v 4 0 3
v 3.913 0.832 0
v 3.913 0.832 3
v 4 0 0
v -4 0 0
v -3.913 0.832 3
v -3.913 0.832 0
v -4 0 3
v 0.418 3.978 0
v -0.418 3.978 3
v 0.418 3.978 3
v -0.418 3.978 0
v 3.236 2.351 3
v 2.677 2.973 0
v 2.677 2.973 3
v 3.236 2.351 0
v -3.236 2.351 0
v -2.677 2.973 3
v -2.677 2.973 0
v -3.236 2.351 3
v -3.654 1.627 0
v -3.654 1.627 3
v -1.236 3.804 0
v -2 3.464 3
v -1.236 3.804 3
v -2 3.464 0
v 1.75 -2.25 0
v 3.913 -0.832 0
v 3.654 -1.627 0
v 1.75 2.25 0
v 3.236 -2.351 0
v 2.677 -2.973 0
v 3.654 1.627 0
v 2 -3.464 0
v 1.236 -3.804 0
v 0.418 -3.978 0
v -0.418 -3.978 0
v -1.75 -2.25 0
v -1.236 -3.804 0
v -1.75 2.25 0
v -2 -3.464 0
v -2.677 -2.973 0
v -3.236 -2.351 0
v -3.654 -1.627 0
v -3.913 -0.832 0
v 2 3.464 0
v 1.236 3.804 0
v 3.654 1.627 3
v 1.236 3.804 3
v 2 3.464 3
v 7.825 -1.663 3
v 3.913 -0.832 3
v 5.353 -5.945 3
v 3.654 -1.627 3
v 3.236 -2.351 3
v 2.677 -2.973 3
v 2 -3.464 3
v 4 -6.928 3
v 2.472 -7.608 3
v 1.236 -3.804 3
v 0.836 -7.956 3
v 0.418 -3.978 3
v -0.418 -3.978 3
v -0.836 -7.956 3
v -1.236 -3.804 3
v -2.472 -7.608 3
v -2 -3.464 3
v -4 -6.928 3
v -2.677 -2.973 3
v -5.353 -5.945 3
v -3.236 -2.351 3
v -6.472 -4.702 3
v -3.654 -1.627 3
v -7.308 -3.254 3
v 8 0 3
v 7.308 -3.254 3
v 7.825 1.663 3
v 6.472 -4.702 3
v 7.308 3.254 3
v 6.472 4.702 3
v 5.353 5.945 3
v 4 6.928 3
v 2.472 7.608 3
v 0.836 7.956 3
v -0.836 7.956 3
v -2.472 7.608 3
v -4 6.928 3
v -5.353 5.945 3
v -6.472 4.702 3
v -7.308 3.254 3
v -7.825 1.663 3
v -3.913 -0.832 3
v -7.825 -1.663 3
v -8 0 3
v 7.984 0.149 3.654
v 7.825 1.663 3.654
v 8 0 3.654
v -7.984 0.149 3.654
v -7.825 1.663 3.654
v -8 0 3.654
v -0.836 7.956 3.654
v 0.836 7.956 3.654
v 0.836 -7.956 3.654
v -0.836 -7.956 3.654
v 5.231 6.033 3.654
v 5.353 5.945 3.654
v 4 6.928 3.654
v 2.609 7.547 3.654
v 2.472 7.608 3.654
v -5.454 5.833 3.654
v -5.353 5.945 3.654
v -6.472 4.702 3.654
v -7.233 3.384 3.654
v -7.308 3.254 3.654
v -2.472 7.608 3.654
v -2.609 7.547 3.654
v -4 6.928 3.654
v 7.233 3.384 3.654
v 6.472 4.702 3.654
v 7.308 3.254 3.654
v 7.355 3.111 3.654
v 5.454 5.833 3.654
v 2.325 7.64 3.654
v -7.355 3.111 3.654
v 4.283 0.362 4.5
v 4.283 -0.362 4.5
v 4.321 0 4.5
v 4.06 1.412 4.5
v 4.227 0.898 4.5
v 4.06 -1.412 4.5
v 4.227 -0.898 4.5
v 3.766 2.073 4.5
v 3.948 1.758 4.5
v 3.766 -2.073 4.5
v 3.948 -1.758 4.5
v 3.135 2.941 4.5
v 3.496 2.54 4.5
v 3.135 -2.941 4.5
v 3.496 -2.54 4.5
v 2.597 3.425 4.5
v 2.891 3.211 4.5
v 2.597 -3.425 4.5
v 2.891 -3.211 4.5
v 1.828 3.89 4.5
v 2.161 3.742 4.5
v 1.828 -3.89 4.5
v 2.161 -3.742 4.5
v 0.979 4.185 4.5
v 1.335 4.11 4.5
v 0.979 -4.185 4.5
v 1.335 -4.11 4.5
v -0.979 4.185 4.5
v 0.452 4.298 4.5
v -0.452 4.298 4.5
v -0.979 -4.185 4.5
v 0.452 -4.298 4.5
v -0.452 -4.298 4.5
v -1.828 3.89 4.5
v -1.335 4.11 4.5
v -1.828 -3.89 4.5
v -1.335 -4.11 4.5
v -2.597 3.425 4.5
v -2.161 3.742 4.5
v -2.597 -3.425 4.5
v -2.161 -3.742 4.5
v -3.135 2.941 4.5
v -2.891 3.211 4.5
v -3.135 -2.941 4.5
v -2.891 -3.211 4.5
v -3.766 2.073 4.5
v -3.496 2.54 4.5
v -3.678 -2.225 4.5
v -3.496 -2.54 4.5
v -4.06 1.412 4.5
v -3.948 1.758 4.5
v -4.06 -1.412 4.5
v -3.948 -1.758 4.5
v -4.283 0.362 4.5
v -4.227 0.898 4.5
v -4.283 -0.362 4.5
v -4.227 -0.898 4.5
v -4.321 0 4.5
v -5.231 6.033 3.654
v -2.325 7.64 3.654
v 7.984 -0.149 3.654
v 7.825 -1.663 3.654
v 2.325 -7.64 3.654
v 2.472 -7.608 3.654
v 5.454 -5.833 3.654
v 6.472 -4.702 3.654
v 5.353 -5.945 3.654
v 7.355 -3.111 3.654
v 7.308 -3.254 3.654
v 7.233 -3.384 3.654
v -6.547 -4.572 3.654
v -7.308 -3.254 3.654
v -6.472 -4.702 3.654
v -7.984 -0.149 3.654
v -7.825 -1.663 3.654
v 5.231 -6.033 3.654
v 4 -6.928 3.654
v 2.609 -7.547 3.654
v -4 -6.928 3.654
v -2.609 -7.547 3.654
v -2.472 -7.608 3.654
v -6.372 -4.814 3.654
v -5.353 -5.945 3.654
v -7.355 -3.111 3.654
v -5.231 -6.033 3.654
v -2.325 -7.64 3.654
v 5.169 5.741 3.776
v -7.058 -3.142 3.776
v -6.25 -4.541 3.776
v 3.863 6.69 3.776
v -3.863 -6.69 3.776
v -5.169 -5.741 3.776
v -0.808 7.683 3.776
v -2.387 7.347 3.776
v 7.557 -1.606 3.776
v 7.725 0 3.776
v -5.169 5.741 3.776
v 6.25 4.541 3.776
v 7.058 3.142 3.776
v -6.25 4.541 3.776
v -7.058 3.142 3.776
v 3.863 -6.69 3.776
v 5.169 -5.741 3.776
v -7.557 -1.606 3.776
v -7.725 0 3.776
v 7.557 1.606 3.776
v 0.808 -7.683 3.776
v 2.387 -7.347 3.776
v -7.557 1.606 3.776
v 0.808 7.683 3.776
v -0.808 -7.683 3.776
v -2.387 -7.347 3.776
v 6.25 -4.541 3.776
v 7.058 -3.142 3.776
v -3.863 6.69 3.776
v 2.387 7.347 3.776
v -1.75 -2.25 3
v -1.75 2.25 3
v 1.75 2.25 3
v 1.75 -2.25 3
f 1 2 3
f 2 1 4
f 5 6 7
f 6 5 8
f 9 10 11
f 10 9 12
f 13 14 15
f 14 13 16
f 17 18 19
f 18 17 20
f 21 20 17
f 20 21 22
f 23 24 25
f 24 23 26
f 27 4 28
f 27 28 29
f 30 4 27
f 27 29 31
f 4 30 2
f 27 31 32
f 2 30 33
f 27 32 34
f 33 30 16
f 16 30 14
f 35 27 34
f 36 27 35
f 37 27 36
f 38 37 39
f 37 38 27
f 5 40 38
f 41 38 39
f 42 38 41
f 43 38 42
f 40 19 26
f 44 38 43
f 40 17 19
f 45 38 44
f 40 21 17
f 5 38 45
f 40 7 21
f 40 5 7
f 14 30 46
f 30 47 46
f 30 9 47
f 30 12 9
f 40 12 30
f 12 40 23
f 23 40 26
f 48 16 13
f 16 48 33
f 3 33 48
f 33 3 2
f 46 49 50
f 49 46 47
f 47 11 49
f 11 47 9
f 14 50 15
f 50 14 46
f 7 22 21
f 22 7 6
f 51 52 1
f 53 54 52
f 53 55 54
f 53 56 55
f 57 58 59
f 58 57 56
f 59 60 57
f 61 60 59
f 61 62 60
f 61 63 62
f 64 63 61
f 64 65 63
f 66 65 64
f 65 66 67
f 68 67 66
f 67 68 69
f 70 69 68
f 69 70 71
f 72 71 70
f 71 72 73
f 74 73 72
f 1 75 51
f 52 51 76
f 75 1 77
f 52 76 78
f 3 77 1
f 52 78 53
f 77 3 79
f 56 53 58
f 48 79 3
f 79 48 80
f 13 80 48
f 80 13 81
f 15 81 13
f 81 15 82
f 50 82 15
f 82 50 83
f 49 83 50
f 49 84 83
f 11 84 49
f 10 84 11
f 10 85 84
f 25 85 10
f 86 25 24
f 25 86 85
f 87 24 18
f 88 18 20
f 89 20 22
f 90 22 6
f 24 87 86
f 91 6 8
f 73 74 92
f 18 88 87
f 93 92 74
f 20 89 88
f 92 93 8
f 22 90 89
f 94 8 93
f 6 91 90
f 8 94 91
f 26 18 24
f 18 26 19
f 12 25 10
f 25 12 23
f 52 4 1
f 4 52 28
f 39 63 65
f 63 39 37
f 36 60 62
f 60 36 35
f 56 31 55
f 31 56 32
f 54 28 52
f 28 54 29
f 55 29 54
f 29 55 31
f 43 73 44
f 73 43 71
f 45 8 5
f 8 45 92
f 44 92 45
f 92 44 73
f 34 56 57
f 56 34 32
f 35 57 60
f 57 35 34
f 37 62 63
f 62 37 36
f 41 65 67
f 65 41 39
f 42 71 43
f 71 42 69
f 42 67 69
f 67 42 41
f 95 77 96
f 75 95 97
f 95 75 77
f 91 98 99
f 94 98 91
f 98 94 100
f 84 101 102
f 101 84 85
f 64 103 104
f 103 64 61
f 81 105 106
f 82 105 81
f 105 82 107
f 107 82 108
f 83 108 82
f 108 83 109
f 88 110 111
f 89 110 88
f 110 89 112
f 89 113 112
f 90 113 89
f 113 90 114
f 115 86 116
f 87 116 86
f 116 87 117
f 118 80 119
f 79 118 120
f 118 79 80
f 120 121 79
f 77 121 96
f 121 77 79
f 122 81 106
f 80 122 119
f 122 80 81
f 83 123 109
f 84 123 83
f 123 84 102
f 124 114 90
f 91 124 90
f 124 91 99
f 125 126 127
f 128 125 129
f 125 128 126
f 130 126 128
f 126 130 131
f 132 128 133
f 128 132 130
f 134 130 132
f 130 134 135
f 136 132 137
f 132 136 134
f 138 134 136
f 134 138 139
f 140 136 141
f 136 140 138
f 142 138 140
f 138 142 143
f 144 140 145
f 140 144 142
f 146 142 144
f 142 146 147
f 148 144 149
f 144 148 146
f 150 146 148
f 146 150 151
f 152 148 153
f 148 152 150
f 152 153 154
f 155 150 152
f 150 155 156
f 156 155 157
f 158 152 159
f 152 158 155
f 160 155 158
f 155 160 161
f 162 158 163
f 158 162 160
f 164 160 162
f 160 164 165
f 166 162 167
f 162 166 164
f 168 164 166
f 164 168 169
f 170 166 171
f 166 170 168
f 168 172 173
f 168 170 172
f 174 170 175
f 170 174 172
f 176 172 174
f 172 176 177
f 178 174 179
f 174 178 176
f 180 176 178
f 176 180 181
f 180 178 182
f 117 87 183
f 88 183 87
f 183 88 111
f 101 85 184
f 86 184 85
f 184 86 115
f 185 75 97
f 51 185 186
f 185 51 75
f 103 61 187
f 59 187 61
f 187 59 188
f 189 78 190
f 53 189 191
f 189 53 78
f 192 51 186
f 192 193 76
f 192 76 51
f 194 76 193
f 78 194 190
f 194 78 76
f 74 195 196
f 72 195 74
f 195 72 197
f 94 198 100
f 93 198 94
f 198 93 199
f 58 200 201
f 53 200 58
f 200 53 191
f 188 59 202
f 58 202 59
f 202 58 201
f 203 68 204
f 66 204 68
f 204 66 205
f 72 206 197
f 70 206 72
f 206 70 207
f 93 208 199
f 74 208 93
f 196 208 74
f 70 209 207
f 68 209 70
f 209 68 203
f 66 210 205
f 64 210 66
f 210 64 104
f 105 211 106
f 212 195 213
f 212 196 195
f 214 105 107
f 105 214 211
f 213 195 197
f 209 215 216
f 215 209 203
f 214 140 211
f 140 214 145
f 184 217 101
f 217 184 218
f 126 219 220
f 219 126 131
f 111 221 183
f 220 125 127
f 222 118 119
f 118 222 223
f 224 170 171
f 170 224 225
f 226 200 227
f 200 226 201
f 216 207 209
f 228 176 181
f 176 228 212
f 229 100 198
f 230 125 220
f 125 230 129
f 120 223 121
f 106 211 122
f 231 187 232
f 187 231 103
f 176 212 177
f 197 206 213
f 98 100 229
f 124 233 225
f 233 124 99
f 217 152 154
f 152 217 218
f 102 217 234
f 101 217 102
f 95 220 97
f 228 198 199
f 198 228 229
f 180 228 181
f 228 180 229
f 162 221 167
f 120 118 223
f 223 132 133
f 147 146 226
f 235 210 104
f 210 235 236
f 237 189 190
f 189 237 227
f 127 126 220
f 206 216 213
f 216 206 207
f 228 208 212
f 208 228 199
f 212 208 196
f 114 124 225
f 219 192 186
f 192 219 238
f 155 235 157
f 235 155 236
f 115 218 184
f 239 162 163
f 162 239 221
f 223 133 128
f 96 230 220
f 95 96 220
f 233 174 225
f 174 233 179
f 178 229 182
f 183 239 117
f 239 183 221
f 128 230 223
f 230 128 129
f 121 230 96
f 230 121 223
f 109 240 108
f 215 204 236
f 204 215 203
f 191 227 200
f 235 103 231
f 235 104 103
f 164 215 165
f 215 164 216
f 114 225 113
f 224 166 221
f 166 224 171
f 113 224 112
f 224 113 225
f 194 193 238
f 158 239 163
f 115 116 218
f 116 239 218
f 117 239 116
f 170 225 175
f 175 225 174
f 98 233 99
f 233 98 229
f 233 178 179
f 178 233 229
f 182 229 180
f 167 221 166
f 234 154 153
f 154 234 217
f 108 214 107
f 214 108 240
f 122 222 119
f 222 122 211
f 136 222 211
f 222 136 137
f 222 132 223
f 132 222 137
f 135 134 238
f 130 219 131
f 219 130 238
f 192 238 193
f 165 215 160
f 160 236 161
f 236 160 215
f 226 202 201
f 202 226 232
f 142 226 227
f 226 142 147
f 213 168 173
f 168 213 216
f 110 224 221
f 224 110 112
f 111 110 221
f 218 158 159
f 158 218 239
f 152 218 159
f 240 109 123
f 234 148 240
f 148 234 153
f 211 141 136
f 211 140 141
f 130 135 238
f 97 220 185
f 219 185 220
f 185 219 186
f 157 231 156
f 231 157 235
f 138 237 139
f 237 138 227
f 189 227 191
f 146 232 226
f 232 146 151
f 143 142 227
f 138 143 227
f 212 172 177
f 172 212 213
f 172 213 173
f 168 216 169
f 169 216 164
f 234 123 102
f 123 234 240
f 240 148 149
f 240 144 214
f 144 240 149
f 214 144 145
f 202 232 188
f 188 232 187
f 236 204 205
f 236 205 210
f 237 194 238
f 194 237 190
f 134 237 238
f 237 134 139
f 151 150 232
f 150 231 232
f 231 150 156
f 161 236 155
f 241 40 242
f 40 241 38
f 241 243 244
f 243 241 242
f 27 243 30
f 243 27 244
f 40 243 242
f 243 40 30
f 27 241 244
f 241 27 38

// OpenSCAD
difference() {
    intersection () {
        union() {
            cylinder(r=4, h=3, $fs=0.1);
            translate([0,0,3]) {
                cylinder(r=8, h=1.5, $fs=0.1);
            }
        }
        translate([0,0,-20]) {
            sphere(25);
        }
    }
    translate([-3.5/2,-4.5/2,0]) {
        cube([3.5,4.5,3]);
    }
}
